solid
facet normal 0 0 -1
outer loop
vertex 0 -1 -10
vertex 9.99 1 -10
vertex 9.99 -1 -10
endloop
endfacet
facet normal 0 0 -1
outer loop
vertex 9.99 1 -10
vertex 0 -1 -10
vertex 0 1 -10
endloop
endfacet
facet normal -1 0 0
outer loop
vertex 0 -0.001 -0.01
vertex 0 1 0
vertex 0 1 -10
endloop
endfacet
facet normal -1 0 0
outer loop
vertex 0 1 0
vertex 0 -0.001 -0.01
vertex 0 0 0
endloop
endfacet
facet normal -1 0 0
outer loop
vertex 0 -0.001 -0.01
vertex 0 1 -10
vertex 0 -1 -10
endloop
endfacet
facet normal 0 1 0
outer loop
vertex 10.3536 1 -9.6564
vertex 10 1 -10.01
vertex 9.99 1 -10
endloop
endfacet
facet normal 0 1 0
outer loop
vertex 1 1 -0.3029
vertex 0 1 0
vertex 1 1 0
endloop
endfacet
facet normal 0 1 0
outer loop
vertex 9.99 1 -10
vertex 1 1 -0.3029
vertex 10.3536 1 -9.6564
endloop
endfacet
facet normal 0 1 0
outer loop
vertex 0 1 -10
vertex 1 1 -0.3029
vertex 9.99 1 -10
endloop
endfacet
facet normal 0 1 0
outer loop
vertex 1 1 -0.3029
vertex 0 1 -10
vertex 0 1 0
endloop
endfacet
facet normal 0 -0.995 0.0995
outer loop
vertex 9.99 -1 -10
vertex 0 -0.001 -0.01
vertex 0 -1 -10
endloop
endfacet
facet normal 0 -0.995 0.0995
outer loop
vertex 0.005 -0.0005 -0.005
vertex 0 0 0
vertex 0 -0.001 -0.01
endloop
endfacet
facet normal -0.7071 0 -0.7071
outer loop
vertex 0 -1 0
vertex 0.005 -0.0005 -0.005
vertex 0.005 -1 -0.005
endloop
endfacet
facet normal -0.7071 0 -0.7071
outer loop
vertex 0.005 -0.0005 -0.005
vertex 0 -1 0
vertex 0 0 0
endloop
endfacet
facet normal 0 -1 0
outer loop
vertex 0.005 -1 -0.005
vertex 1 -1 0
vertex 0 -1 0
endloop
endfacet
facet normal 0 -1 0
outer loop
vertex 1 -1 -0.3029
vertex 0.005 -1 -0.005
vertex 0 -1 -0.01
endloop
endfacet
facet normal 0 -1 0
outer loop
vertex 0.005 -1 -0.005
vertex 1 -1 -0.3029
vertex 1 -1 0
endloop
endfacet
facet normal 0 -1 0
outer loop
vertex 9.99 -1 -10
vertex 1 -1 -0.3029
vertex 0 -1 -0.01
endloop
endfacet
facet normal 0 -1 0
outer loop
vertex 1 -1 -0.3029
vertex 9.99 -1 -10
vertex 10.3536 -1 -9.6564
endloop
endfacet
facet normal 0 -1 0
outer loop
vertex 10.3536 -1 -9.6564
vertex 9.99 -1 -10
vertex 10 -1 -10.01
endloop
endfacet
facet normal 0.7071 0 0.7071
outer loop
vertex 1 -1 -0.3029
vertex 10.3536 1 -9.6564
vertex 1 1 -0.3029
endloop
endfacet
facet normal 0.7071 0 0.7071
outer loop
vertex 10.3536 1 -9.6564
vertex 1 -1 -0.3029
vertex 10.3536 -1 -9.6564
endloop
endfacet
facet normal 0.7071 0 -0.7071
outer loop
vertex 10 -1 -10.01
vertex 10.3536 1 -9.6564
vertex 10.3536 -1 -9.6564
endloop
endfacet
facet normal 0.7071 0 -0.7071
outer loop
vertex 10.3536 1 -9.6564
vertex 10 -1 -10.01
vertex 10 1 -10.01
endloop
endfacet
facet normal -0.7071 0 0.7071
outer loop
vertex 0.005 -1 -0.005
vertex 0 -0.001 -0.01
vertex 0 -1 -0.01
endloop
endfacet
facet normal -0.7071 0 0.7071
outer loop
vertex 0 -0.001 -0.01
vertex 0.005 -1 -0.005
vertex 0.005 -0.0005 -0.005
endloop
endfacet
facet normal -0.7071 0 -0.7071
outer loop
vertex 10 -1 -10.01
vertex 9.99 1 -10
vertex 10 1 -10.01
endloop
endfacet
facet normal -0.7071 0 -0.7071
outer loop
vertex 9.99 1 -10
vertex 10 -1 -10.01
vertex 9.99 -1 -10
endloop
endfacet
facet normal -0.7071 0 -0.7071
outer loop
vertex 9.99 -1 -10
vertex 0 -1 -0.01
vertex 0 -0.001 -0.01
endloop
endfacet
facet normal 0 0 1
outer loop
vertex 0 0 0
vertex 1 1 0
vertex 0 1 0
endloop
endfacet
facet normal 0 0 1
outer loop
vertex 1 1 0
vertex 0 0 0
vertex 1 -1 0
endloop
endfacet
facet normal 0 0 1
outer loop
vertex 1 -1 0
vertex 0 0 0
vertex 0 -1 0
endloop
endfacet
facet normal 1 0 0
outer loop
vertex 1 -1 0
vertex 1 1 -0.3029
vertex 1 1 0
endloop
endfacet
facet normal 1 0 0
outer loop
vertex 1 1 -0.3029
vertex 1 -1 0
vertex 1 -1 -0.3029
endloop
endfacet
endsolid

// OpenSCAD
/////////////////////////////////////////////////
module Corte(A,B){


    r=0.3;
    g=0.1;
    b=0.2;
    

    ax=-atan2((B/2.0),A);
    ay=0;
    az=0;
        
    
    
    rotate(a=[ax,ay,az])
    {
        color( c = [r, g, b], alpha = 0.9 )
        {
            translate([-A/2.0,-B,0])
            {
                cube([2*A,B,A*1.1]);
            }
        }
    }

}
/////////////////////////////////////////////////
module Base(A,B){
    r=0.1;
    g=0.1;
    b=0.3;
    
    ax=0;
    ay=0;
    az=0;
            
    rotate(a=[ax,ay,az])
    {
        color( c = [r, g, b], alpha = 0.9 )
        {
            translate([0,0,0])
            {
                cube([A,B,A]);
            }
        }
    }

}
/////////////////////////////////////////////////
module Nucleo(A,B){
    difference(){
        Base(A,B);
        Corte(A,B);
    }
}
/////////////////////////////////////////////////
module Corte_Superior(A,B){
    rotate(a=[90,0,0])
    {
        linear_extrude(height = B*3, center=true)
        {
            h=1.0;
            polygon(points=[[0-h,A+h],[A+h,A+h],[A+h,0-h],[0-h,A+h]]);
        }
    }
}
///////////////////////////////////////////////////////////////////
module inferior(A,B){
    difference(){
        Nucleo(A,B);
        Corte_Superior(A,B);
    }
}

////////////////////////////////////////////////////////////////////////

module superior(A,B,P){
    difference(){
        translate([0,0,A-0.01])
            {
            rotate(a=[0,45,0])
                {
                cube([sqrt(2*A*A),B,P]);
                }
            }
            translate([0,0,A+P/2.0])
            {
                    cube([sqrt(2*A*A),3*B,P], center=true);
            }
        }
}

///////////////////////////////////////////////////////////////////////
module completo(A,B,P){
    translate([0,-B/2,0])
    {
    union()
    {
        inferior(A,B);
        superior(A,B,P);
    }
    }
}

////////////////////////////////////////////////////////////////////////
module Prisma(pm,B,A){
translate([0,0,A-pm])
    {
        rotate(a=[90,0,0])
        {
            linear_extrude(height = B, center=true)
            {
                polygon(points=[[0,pm],[pm,pm],[pm,0],[0,pm]]);
            }
        }
    }
}
///////////////////////////////////////////////////////////////////

A=10;
B=2;
P=0.5;
pm=1.0;

translate([0,0,-A])
    {
    union()
        {
        completo(A,B,P);
        Prisma(pm,B, A);
        }
    }
